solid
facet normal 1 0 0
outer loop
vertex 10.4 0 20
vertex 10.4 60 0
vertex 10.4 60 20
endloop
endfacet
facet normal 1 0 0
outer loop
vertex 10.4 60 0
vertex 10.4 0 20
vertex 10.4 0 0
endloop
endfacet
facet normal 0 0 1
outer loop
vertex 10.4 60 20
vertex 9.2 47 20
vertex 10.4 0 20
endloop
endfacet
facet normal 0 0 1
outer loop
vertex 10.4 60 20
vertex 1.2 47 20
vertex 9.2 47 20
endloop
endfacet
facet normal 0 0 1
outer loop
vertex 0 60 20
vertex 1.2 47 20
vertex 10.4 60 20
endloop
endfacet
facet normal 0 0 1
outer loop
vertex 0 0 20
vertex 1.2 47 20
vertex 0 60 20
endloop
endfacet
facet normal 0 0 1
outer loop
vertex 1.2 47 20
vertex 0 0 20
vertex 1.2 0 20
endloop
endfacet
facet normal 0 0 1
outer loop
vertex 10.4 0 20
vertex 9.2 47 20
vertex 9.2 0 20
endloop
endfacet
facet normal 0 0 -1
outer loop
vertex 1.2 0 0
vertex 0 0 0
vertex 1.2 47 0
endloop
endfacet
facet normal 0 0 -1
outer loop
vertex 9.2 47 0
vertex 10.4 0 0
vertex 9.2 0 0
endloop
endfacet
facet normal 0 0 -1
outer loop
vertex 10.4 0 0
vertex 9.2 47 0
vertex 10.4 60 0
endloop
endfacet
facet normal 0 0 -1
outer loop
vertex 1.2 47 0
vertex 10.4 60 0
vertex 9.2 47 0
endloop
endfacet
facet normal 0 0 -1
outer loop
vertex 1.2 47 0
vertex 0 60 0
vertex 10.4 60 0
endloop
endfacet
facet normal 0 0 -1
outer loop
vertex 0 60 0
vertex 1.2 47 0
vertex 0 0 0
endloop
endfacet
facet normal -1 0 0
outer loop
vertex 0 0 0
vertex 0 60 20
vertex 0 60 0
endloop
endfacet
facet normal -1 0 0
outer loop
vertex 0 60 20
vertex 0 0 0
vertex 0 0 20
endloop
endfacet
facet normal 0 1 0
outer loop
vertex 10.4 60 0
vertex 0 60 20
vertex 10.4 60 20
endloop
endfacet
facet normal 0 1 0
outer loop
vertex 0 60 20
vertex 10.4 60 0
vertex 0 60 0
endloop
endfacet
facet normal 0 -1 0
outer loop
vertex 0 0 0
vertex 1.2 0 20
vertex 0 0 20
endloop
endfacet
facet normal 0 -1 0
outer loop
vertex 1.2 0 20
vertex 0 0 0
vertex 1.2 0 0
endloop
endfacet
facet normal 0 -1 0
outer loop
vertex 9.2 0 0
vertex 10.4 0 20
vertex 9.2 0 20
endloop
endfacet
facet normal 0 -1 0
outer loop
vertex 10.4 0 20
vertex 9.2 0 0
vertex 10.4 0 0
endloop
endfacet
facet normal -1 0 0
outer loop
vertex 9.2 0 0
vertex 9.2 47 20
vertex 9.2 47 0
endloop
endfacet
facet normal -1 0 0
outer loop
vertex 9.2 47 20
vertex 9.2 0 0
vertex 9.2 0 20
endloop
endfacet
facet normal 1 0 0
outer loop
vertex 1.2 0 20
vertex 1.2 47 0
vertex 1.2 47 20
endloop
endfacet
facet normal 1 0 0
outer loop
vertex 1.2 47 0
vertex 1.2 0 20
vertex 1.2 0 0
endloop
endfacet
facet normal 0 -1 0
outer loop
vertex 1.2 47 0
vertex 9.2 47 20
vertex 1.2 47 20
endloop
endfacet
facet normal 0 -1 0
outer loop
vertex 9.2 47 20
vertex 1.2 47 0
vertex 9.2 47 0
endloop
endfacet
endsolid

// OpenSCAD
difference() {
  cube([2.4+8, 60, 20]);
  translate([1.2, 0, 0]) cube([8, 47, 20]);
}
